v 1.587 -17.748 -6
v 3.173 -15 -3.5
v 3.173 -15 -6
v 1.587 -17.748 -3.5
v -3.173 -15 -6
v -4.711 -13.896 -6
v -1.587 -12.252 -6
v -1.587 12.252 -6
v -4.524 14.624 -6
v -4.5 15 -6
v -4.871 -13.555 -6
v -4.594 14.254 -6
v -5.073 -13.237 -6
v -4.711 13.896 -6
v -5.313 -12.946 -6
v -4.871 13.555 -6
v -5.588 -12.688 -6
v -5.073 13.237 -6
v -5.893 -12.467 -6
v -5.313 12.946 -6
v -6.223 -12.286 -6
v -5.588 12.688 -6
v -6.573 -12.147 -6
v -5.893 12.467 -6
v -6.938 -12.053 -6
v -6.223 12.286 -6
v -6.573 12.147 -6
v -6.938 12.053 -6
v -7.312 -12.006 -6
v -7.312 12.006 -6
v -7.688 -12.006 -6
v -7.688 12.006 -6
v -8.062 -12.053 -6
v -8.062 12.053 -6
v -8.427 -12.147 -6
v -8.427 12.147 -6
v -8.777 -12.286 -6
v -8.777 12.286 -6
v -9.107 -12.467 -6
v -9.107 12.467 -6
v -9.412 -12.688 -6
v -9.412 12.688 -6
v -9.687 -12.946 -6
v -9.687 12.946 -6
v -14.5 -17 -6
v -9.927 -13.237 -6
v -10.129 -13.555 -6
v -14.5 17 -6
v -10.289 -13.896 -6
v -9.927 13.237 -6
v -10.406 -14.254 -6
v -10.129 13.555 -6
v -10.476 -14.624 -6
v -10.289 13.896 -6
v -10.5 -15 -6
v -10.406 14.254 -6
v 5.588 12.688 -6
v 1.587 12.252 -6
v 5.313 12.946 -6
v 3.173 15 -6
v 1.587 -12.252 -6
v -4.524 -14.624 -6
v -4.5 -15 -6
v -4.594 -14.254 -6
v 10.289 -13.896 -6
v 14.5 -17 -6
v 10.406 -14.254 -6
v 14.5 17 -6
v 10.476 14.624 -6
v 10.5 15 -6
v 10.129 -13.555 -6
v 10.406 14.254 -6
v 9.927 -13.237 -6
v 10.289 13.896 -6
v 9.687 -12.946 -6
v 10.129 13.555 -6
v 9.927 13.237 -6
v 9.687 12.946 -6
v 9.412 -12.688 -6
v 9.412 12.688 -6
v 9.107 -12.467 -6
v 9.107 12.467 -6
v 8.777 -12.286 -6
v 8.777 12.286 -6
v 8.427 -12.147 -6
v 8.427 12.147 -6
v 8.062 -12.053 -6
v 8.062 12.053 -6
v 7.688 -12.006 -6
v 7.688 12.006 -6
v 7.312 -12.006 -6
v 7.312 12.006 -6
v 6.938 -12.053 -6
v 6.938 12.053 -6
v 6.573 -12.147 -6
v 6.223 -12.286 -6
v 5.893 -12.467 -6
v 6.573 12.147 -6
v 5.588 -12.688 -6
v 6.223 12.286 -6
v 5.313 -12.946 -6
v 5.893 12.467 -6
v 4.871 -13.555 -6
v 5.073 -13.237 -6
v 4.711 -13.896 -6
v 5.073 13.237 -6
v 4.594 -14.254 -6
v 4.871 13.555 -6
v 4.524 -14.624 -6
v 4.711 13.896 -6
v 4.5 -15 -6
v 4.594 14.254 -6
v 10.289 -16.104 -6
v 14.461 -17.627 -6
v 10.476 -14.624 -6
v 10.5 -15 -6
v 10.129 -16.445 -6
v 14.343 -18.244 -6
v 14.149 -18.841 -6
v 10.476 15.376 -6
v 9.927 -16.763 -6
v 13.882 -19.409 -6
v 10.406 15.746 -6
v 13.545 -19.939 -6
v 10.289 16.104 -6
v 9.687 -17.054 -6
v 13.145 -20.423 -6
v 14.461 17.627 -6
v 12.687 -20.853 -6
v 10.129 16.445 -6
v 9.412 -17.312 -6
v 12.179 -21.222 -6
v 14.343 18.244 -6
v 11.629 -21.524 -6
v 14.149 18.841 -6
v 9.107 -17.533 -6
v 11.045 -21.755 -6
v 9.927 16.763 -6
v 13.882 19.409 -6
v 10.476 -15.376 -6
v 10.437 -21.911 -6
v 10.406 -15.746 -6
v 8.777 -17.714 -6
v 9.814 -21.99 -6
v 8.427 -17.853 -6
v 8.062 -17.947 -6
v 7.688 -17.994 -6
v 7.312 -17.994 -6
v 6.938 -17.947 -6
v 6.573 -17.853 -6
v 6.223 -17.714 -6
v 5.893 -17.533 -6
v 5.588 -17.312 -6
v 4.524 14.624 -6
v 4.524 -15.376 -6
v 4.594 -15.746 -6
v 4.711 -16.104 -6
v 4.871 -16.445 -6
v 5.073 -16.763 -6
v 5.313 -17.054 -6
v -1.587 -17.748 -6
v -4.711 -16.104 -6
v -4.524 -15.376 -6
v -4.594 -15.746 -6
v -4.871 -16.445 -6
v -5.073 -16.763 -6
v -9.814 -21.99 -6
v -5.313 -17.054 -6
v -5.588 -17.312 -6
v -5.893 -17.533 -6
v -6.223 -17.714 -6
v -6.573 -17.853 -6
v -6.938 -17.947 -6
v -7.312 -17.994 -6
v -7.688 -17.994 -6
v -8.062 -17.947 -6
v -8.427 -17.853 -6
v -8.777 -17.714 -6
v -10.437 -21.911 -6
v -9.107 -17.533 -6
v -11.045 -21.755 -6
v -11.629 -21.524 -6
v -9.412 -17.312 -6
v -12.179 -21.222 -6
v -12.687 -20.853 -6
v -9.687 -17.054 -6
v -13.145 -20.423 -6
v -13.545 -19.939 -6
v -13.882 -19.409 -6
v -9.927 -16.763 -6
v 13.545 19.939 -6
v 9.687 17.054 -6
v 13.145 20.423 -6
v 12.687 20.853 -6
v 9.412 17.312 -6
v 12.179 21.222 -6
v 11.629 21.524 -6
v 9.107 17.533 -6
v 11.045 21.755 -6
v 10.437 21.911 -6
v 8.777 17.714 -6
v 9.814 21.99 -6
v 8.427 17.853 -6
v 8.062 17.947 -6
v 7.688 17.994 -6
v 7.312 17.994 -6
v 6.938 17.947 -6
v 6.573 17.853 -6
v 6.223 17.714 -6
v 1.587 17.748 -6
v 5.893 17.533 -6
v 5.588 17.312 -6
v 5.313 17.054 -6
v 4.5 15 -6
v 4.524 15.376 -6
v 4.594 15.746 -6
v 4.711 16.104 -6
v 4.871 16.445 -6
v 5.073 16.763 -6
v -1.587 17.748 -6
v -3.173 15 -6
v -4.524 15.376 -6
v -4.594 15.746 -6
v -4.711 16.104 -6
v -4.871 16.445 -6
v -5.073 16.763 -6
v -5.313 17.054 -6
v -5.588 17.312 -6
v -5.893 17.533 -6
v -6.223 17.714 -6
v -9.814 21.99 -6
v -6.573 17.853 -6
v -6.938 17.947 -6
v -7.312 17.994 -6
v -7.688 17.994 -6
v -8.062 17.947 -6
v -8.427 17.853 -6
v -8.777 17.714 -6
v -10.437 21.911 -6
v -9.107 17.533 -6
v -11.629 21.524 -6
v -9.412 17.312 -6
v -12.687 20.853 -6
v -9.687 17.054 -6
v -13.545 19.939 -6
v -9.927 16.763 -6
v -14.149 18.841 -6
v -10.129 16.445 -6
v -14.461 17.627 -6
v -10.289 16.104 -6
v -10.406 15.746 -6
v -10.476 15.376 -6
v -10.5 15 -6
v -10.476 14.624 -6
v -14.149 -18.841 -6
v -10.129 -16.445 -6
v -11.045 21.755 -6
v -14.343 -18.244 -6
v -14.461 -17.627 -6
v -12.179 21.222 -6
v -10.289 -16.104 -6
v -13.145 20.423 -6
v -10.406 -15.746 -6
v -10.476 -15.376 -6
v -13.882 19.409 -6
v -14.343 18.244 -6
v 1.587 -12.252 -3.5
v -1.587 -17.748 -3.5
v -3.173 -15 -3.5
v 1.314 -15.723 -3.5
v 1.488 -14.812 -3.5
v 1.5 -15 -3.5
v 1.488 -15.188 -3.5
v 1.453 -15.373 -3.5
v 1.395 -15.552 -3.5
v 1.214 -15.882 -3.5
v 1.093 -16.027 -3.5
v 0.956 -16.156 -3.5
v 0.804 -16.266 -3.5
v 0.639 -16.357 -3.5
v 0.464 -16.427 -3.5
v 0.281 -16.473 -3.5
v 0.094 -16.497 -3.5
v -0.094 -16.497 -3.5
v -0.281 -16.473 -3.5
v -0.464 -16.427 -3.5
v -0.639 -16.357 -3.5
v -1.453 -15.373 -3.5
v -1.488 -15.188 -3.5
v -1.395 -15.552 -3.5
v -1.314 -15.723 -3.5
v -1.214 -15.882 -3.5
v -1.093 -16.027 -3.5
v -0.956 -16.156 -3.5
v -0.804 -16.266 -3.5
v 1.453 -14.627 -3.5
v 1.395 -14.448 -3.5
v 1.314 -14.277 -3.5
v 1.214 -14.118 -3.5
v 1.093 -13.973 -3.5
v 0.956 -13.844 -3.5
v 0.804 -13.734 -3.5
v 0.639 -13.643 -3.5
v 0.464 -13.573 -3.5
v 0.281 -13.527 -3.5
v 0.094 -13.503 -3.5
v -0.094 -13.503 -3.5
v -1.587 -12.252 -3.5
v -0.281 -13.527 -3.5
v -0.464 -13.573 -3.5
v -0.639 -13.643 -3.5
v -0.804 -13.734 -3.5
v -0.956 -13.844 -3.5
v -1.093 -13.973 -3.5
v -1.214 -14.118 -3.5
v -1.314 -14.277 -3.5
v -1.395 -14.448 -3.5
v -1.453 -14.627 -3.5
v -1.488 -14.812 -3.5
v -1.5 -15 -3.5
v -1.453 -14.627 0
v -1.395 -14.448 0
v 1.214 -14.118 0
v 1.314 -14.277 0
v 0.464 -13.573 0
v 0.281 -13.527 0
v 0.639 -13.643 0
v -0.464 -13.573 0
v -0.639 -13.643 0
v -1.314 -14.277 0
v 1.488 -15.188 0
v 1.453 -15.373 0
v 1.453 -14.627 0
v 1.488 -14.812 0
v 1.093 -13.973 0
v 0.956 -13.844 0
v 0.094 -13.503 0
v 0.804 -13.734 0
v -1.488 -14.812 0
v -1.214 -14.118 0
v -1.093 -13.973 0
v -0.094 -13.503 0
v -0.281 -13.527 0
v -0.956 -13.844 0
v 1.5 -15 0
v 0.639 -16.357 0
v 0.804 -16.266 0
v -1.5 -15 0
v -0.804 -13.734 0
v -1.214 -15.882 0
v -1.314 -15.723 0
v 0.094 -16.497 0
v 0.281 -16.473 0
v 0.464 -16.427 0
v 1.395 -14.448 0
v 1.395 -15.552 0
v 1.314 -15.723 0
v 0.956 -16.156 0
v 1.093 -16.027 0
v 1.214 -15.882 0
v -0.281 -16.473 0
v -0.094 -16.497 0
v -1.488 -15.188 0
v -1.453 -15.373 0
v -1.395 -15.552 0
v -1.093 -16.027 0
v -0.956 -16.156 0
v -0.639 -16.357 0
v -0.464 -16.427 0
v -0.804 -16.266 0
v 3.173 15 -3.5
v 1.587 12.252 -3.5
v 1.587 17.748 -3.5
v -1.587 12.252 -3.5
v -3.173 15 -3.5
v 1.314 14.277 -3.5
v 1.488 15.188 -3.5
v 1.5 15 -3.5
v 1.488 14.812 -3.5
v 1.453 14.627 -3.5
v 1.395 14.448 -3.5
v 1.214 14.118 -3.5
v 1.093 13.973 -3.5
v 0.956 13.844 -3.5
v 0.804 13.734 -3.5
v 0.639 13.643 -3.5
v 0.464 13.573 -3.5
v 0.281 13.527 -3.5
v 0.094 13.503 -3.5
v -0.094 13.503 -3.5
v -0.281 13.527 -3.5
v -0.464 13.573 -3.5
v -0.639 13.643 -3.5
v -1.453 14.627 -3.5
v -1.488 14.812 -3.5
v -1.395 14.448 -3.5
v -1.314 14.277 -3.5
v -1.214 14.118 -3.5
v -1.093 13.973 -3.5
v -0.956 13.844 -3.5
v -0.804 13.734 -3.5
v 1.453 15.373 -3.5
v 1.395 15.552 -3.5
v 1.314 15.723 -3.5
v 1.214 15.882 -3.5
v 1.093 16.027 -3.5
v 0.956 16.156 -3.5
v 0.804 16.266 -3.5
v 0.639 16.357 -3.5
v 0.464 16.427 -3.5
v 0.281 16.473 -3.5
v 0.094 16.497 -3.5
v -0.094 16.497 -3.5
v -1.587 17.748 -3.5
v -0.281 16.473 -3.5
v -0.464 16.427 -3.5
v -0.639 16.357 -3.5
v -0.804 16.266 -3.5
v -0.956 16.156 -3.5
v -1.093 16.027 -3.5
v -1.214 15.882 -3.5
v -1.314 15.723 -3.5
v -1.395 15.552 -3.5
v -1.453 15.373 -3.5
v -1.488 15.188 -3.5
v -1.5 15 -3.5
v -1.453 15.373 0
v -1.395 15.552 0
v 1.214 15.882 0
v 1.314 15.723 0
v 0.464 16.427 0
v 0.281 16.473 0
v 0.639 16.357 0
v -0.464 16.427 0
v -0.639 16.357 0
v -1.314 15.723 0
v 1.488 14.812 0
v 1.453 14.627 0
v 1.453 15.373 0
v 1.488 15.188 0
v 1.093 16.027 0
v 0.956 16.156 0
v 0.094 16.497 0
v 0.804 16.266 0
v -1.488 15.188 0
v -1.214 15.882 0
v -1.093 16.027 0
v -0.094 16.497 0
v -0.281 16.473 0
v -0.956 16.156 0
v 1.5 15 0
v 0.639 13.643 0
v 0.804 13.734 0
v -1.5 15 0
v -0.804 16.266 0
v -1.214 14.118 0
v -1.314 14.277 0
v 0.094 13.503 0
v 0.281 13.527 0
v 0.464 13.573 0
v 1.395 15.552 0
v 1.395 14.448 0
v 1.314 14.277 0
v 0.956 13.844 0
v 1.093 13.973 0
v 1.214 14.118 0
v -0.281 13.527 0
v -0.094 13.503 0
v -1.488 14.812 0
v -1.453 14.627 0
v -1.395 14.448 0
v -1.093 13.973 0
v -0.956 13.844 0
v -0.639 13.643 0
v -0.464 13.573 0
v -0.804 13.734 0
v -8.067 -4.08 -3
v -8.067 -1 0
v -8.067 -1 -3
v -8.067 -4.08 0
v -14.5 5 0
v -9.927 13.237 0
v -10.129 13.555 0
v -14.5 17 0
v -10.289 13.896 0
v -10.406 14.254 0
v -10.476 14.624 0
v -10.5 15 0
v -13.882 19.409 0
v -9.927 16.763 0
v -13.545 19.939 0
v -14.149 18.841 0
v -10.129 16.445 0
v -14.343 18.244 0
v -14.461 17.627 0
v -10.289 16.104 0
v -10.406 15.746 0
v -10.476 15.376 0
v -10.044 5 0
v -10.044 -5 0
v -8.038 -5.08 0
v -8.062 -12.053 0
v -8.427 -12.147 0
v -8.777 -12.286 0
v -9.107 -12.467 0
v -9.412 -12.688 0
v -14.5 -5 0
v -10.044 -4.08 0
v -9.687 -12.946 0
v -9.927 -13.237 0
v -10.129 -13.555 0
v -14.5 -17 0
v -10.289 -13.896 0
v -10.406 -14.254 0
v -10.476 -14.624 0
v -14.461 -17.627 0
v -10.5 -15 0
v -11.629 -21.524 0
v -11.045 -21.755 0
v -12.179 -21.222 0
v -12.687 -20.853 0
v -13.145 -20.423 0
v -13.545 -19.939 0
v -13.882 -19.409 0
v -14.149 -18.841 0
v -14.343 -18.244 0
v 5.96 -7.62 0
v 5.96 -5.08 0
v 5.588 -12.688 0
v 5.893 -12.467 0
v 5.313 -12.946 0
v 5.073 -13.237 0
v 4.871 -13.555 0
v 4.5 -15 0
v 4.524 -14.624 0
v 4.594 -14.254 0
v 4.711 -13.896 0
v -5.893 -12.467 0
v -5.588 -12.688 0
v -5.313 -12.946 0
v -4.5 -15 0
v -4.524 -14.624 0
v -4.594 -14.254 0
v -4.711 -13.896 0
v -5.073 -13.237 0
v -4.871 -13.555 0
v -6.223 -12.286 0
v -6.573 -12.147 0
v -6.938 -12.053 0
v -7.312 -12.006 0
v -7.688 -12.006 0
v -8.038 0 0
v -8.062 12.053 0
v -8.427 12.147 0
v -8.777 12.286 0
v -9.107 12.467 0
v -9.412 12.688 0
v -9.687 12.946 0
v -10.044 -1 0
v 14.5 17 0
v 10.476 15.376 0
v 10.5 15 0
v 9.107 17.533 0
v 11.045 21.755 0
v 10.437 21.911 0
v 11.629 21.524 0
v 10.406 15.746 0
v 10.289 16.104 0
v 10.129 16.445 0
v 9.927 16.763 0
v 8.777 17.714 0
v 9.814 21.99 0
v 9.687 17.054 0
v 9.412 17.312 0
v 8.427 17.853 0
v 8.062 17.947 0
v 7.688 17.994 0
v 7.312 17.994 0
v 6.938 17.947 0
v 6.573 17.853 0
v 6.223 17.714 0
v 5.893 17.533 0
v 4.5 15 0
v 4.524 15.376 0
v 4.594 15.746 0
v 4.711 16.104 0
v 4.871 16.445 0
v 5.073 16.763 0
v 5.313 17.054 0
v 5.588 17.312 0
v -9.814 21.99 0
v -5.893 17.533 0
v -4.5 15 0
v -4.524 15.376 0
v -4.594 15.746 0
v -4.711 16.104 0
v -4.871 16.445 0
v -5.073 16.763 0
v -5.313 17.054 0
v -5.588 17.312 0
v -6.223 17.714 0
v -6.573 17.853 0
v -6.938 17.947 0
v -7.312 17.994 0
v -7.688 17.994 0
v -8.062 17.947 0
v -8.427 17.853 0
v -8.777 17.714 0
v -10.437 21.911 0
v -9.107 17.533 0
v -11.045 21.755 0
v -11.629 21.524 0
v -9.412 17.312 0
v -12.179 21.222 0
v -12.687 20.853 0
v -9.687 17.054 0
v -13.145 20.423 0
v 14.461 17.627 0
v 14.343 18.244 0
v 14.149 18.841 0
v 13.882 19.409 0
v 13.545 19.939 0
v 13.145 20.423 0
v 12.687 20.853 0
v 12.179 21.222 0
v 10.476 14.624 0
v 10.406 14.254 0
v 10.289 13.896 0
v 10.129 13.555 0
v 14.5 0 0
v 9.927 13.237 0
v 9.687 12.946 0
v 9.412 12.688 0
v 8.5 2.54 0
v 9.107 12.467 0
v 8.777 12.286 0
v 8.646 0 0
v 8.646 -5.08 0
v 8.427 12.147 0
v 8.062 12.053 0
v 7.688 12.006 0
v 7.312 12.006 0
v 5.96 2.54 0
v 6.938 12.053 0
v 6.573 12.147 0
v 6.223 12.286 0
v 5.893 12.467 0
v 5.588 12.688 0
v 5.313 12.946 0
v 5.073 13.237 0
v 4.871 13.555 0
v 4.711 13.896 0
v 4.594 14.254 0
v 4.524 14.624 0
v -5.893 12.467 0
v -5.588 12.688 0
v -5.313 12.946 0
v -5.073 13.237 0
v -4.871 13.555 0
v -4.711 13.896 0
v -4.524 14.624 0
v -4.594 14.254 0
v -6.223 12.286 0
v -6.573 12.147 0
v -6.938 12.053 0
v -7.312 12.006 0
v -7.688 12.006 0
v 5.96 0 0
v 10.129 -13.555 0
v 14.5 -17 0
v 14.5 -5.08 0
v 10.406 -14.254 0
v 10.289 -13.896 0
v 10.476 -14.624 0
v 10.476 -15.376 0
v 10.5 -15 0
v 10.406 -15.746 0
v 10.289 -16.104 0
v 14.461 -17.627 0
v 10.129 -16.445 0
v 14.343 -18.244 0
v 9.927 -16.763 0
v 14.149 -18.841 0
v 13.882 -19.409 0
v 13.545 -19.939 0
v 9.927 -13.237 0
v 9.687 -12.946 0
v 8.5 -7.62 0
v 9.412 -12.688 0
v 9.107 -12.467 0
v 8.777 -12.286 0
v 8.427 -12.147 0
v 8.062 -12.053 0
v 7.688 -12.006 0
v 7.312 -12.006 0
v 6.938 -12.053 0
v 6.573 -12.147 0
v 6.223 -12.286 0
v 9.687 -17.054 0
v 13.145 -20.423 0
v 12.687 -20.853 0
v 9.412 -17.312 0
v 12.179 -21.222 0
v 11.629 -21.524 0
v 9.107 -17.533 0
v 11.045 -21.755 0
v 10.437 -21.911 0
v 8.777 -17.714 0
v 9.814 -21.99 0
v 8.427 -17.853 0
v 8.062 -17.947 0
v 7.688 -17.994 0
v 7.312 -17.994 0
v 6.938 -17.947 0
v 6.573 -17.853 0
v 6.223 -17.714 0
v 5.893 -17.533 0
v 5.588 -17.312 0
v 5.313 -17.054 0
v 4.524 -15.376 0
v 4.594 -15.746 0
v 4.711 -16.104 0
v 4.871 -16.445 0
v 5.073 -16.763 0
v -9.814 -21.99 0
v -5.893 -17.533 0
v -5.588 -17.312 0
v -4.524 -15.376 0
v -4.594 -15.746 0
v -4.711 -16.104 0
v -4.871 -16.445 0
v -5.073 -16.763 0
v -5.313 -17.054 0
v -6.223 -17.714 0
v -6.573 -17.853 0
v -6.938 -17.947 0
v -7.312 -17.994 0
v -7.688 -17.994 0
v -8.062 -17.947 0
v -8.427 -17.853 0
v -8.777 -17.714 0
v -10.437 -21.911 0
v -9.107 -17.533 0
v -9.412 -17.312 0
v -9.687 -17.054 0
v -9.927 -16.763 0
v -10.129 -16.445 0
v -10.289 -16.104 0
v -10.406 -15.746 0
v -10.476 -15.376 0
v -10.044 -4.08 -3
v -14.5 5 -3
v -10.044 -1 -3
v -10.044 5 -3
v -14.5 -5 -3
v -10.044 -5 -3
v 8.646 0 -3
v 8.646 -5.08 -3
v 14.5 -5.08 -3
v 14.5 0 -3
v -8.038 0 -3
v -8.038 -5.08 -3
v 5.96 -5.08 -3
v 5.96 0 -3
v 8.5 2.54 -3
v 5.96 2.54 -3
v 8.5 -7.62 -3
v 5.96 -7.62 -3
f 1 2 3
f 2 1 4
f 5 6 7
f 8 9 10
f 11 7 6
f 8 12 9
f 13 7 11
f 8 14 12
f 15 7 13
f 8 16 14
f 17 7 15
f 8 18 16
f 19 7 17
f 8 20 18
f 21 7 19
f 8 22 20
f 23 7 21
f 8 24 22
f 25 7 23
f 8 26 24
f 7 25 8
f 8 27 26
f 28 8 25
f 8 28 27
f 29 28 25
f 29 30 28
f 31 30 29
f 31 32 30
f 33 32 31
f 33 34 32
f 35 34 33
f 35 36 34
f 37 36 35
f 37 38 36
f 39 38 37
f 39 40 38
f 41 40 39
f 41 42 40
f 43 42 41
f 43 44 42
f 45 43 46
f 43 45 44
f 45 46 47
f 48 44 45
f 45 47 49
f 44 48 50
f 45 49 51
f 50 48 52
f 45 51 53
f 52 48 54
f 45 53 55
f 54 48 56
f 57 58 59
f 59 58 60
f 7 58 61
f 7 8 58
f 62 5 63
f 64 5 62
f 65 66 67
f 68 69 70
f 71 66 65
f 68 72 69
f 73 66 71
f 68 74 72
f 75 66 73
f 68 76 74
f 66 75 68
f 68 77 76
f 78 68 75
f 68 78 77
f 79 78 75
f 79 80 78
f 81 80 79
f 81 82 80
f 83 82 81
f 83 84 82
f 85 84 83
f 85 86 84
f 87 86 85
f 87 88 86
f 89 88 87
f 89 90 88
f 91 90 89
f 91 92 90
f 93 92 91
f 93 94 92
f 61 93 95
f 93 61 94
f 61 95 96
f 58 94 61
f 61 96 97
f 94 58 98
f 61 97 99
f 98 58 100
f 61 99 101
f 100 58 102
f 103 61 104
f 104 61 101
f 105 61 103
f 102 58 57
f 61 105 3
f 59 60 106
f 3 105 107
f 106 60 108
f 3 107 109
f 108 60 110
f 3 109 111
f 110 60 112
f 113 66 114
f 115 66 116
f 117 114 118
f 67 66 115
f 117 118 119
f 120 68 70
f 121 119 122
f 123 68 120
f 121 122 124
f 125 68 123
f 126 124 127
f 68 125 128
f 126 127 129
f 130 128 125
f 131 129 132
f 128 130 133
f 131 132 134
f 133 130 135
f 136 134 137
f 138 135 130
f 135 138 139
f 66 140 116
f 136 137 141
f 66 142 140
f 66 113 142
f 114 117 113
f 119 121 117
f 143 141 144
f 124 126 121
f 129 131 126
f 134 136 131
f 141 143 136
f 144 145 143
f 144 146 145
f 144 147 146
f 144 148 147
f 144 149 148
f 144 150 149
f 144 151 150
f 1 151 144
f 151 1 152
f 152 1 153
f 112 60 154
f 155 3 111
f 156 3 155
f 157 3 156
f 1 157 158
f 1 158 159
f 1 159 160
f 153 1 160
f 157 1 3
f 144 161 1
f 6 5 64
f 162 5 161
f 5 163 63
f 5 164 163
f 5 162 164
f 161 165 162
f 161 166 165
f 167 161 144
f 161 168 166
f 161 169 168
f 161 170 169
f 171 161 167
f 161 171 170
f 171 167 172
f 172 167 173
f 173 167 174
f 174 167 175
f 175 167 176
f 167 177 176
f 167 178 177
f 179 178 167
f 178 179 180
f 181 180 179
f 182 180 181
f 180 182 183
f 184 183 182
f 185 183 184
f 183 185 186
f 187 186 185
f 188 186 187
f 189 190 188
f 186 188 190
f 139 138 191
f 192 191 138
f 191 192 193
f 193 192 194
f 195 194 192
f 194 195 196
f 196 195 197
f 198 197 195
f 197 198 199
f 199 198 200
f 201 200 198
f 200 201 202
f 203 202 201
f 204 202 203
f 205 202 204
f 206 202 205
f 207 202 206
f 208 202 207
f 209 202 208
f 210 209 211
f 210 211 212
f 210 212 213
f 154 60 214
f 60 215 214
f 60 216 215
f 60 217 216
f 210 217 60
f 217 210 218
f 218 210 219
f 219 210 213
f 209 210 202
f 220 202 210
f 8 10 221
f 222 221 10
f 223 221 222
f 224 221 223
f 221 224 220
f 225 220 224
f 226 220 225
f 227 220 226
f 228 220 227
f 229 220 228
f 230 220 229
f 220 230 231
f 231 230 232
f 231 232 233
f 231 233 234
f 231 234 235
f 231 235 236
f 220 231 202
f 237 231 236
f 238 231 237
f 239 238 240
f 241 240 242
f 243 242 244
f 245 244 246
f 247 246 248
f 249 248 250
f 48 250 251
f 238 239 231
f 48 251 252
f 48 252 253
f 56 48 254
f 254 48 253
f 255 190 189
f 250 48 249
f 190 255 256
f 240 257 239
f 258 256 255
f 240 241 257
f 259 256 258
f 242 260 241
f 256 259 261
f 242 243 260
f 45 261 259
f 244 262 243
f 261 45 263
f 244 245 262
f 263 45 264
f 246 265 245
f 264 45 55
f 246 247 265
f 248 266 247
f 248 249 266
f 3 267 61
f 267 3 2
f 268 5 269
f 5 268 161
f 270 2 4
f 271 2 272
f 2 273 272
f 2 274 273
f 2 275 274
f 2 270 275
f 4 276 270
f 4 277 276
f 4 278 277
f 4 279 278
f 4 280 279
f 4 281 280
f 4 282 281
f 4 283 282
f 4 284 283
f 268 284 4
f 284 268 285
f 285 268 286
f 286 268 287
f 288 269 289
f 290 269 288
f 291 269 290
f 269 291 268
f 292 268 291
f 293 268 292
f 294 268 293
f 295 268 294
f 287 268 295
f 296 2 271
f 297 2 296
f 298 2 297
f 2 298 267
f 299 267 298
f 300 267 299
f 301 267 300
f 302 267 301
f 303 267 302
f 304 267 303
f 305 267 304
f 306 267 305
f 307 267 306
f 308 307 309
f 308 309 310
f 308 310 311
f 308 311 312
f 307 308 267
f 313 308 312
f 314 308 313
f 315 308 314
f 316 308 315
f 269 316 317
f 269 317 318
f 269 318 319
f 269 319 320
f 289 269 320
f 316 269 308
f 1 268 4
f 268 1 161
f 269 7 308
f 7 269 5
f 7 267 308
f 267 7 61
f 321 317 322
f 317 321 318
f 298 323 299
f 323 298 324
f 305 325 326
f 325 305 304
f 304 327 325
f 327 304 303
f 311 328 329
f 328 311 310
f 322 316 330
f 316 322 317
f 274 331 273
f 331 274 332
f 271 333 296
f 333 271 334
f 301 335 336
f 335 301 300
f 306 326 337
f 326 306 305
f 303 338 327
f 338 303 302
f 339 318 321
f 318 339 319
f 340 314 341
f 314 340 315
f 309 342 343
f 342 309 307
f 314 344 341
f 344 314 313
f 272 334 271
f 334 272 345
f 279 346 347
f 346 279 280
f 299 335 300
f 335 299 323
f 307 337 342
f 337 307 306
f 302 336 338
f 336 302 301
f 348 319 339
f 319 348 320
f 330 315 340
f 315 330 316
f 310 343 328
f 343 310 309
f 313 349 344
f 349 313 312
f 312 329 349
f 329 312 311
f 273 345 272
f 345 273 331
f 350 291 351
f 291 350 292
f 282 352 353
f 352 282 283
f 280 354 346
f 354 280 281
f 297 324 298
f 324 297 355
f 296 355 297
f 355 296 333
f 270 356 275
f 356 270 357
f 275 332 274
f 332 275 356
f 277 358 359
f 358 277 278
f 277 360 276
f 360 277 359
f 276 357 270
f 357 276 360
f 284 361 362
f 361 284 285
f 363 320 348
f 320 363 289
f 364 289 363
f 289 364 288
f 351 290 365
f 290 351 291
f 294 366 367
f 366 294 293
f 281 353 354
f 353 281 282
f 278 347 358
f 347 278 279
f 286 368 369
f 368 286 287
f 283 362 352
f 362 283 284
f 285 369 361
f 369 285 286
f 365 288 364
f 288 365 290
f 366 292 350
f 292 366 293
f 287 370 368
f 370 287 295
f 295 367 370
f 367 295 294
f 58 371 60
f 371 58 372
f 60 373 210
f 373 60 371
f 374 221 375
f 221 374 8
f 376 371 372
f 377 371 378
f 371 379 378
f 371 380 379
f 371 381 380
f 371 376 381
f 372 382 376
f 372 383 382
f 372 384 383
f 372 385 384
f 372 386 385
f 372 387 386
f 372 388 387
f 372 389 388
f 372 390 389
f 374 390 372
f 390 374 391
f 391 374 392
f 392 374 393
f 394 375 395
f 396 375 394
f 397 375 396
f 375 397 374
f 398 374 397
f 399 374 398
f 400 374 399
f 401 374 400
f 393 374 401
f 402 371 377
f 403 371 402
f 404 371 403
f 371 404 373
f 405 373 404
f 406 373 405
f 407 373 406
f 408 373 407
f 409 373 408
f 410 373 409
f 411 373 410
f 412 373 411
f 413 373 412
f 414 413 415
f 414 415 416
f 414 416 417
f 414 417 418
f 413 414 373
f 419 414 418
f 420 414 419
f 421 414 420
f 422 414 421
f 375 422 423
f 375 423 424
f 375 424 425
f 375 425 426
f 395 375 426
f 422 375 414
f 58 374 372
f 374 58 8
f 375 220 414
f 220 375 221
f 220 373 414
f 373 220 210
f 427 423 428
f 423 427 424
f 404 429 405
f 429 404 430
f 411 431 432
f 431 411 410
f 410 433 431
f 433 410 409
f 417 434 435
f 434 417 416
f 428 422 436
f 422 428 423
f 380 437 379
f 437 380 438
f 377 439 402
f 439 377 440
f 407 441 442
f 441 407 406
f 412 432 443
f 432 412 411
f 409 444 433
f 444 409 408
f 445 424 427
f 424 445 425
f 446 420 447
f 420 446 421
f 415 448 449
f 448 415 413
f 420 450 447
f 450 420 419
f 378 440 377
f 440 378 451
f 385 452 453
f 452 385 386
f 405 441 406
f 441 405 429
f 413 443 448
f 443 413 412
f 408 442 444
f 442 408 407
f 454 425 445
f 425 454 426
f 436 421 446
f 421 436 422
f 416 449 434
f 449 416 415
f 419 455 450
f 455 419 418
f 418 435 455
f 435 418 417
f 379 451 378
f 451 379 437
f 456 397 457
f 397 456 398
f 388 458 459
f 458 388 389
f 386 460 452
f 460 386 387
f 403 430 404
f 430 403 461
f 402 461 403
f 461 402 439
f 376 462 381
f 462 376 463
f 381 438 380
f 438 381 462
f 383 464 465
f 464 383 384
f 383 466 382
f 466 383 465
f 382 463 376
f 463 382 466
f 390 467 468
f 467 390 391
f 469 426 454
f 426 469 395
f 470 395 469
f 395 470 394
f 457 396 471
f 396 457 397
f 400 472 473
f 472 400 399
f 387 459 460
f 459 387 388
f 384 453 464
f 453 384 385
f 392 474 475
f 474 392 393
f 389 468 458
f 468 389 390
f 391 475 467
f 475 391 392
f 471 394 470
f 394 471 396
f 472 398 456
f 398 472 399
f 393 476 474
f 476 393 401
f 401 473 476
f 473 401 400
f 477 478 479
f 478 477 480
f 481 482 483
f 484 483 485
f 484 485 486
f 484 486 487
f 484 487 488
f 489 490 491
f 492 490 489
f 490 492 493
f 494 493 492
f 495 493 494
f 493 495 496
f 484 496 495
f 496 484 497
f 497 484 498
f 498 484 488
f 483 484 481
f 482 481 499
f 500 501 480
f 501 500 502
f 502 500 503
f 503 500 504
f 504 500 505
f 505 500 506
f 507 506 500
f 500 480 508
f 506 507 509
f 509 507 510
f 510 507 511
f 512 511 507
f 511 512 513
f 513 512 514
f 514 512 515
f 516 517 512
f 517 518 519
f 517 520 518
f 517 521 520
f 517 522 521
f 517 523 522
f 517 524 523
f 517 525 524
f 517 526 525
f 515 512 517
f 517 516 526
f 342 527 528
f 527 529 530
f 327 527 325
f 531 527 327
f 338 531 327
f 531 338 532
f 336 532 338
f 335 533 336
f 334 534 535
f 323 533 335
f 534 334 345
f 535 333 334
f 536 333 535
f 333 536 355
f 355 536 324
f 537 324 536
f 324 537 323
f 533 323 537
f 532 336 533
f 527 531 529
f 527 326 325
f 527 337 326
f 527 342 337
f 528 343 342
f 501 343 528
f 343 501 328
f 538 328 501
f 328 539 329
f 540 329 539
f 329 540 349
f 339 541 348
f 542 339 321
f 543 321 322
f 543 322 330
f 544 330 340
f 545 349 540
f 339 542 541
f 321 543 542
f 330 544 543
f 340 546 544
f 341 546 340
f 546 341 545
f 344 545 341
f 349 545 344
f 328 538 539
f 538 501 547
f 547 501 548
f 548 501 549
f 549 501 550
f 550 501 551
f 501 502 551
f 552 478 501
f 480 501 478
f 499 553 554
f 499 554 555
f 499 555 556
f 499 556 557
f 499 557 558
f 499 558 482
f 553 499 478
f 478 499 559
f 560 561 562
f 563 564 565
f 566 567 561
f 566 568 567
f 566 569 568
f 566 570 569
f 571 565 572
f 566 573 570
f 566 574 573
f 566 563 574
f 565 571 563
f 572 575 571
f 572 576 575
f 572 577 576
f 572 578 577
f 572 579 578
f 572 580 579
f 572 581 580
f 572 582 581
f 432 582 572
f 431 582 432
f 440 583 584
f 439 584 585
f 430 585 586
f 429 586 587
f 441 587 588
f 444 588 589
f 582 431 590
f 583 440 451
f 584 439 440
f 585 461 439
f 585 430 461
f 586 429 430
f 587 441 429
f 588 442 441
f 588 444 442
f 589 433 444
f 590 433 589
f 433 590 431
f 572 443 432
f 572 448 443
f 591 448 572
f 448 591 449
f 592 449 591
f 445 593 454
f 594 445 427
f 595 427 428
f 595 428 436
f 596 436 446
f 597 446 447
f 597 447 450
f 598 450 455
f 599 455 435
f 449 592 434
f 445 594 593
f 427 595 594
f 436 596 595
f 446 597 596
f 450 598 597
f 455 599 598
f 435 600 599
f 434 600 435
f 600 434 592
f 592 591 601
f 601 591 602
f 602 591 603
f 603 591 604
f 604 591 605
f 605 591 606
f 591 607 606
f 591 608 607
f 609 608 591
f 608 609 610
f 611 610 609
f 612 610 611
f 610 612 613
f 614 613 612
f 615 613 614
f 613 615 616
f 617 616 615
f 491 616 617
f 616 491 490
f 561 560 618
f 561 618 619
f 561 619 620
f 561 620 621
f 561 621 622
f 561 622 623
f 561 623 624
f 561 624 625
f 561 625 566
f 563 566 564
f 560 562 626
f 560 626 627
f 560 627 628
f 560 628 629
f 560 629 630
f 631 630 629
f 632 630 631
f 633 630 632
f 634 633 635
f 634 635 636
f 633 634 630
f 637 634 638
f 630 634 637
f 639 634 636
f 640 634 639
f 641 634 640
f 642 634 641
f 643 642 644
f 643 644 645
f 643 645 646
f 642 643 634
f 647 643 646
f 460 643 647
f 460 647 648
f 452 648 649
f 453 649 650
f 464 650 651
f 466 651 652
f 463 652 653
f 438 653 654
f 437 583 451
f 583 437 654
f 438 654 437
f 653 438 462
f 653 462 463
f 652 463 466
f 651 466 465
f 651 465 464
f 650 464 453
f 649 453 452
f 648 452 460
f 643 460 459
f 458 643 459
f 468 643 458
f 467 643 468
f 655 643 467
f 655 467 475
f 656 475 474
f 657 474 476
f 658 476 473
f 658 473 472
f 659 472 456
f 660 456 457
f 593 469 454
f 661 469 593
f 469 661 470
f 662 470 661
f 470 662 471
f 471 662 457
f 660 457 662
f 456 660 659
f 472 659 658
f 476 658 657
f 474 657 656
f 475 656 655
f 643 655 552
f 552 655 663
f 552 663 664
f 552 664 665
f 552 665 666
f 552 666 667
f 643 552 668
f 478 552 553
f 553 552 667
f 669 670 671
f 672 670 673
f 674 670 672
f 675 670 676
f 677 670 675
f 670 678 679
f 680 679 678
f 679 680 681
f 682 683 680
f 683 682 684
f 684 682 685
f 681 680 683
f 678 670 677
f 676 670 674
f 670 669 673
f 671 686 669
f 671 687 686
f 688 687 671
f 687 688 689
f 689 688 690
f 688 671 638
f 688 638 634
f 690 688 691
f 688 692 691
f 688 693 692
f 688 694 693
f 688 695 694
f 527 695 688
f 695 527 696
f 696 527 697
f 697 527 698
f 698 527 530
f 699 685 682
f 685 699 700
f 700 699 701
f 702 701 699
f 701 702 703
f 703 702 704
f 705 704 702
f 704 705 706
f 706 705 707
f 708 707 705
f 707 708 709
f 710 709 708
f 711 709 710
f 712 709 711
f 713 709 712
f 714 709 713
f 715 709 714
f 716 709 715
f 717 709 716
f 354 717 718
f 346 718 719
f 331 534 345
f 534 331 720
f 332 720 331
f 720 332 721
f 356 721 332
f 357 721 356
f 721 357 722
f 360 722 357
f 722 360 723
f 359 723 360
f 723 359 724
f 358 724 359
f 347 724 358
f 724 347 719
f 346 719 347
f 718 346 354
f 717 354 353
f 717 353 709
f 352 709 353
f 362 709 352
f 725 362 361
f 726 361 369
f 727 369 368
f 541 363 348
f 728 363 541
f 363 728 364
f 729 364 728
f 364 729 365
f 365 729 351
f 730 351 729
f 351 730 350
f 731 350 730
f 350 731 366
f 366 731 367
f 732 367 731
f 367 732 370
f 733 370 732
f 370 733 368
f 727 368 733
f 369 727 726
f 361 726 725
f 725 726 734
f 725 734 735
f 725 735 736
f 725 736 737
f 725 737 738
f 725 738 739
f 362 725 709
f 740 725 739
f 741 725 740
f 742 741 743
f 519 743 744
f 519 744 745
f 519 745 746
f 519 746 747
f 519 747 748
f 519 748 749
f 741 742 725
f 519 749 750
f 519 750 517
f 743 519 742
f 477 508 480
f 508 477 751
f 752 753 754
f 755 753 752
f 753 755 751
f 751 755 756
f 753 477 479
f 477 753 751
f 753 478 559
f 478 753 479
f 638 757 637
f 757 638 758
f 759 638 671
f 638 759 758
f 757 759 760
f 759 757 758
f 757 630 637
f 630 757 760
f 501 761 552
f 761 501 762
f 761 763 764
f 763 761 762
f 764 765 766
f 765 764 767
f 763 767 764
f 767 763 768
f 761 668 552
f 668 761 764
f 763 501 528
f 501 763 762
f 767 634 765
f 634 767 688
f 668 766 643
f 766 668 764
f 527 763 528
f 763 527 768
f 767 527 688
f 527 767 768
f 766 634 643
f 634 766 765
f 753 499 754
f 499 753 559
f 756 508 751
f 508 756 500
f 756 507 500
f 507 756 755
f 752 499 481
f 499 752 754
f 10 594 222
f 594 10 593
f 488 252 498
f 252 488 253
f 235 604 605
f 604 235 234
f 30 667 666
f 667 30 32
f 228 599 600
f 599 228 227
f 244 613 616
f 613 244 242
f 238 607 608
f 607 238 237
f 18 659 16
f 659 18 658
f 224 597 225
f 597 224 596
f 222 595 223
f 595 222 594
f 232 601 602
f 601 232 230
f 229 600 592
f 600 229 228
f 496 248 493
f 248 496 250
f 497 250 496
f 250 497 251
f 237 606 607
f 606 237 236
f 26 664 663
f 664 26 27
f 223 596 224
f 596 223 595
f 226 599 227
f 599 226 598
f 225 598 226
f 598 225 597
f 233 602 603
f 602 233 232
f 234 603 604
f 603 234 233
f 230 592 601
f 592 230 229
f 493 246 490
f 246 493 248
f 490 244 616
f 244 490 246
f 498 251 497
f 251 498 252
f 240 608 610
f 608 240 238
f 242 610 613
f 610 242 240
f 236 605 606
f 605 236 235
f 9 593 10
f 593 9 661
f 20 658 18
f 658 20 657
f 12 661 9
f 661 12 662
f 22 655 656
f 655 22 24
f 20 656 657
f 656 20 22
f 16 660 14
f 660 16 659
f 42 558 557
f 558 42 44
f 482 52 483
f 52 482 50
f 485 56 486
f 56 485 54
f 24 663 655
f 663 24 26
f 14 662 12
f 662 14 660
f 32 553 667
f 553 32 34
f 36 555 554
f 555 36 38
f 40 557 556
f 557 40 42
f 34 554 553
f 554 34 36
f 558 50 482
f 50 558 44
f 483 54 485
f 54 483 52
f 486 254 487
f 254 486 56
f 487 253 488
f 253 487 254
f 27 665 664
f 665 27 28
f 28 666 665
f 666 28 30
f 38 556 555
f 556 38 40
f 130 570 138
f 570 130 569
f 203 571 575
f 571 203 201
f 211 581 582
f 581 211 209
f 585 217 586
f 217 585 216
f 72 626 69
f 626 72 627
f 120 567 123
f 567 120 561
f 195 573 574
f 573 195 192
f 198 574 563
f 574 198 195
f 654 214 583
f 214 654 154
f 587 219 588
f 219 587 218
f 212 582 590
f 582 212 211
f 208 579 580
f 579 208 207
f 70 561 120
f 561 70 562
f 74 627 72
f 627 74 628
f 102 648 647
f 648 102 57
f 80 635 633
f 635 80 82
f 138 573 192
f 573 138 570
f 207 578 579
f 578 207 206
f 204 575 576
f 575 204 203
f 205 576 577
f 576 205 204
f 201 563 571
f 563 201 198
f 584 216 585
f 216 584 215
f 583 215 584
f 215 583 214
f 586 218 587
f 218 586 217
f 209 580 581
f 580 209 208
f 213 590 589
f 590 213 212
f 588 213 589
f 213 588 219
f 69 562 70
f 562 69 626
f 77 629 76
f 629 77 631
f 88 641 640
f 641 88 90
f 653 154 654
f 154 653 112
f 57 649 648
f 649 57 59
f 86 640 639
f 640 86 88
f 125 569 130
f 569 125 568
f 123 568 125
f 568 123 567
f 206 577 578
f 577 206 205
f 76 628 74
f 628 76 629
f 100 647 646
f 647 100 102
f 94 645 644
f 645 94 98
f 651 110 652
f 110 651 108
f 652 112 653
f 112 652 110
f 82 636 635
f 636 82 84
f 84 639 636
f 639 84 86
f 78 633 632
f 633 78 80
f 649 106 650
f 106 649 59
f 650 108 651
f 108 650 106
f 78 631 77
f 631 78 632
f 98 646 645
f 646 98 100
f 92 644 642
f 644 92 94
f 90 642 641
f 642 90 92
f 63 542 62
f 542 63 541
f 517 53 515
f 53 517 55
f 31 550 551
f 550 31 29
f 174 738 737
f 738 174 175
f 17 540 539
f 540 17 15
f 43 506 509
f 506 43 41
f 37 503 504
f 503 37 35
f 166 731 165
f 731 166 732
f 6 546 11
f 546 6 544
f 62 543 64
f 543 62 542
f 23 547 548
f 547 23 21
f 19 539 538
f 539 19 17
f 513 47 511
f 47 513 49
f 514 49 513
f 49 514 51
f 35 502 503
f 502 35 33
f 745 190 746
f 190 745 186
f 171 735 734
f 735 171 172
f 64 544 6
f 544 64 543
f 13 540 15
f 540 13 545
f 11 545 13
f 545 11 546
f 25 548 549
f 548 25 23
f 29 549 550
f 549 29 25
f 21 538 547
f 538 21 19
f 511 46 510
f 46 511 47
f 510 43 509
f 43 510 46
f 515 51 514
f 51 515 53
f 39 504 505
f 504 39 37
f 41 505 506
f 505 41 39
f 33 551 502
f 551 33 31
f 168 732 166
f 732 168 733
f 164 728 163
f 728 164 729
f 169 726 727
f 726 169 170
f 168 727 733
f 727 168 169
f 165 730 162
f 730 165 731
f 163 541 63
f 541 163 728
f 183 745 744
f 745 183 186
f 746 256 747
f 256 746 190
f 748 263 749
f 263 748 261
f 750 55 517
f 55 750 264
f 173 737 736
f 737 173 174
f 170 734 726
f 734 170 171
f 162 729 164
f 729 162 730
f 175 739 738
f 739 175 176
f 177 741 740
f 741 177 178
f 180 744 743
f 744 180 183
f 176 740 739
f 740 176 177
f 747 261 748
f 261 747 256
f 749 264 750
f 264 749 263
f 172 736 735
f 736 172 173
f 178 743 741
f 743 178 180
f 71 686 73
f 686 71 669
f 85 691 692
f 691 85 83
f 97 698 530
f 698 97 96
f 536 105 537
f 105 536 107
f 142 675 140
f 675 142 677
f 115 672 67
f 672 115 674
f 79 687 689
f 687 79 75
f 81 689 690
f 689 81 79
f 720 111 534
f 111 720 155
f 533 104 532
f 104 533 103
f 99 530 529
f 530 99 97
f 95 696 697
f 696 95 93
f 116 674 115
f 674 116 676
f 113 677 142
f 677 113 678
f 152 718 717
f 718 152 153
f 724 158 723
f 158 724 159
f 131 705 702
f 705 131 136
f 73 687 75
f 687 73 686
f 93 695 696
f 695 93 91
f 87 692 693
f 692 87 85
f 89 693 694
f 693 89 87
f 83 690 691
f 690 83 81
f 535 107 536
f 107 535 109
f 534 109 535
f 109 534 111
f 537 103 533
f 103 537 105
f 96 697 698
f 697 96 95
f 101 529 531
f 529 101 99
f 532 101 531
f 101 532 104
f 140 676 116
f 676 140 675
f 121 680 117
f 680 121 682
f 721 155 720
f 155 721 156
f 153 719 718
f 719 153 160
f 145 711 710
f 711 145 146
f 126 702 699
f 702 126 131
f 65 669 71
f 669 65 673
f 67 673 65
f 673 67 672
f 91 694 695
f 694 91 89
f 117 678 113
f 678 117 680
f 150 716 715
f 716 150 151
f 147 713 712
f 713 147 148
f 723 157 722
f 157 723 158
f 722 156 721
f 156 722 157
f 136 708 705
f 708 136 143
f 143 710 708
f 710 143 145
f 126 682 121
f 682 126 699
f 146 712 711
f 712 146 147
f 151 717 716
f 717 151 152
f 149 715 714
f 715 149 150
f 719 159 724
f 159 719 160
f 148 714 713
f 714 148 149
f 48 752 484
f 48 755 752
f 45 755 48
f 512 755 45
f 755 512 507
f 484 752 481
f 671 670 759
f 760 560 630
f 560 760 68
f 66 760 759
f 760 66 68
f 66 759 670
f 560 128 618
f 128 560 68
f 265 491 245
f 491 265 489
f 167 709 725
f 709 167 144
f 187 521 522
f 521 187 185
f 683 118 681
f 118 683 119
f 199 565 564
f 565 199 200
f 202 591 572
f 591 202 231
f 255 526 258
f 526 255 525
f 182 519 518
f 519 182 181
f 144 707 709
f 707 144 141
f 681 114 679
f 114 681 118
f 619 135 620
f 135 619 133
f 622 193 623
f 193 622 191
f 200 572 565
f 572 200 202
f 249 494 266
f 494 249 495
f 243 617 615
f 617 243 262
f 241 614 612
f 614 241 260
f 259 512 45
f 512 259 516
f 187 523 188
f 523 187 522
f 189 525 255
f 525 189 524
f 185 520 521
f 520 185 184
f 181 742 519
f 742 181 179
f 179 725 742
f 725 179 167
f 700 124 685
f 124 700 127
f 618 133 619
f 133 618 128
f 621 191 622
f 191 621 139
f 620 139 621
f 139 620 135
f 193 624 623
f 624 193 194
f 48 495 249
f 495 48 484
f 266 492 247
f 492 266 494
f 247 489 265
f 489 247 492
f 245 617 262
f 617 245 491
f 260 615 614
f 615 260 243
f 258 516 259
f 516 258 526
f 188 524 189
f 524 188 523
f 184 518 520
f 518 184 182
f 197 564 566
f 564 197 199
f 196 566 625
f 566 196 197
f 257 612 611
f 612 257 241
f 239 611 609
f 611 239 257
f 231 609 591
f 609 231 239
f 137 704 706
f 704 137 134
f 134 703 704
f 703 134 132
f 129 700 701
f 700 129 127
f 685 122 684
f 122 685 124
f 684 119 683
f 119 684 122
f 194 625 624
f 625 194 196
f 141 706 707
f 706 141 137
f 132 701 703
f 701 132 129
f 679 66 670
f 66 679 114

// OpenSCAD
$fn = 50;


difference() {
	union() {
		translate(v = [0, 0, -6]) {
			hull() {
				translate(v = [-9.5000000000, 17.0000000000, 0]) {
					cylinder(h = 6, r = 5);
				}
				translate(v = [9.5000000000, 17.0000000000, 0]) {
					cylinder(h = 6, r = 5);
				}
				translate(v = [-9.5000000000, -17.0000000000, 0]) {
					cylinder(h = 6, r = 5);
				}
				translate(v = [9.5000000000, -17.0000000000, 0]) {
					cylinder(h = 6, r = 5);
				}
			}
		}
	}
	union() {
		translate(v = [0, -15, -6]) {
			rotate(a = [0, 0, 0]) {
				difference() {
					union() {
						linear_extrude(height = 2.5000000000) {
							polygon(points = [[3.1735000000, 0.0000000000], [1.5867500000, 2.7483316189], [-1.5867500000, 2.7483316189], [-3.1735000000, 0.0000000000], [-1.5867500000, -2.7483316189], [1.5867500000, -2.7483316189]]);
						}
						translate(v = [0, 0, -50.0000000000]) {
							cylinder(h = 100, r = 1.5000000000);
						}
						translate(v = [0, 0, -50.0000000000]) {
							cylinder(h = 100, r = 1.5000000000);
						}
						translate(v = [0, 0, -50.0000000000]) {
							cylinder(h = 100, r = 1.5000000000);
						}
					}
					union();
				}
			}
		}
		translate(v = [0, 15, -6]) {
			rotate(a = [0, 0, 0]) {
				difference() {
					union() {
						linear_extrude(height = 2.5000000000) {
							polygon(points = [[3.1735000000, 0.0000000000], [1.5867500000, 2.7483316189], [-1.5867500000, 2.7483316189], [-3.1735000000, 0.0000000000], [-1.5867500000, -2.7483316189], [1.5867500000, -2.7483316189]]);
						}
						translate(v = [0, 0, -50.0000000000]) {
							cylinder(h = 100, r = 1.5000000000);
						}
						translate(v = [0, 0, -50.0000000000]) {
							cylinder(h = 100, r = 1.5000000000);
						}
						translate(v = [0, 0, -50.0000000000]) {
							cylinder(h = 100, r = 1.5000000000);
						}
					}
					union();
				}
			}
		}
		translate(v = [15.0000000000, 0, -3]) {
			rotate(a = [0, 0, 180]) {
				difference() {
					union() {
						#translate(v = [23.0670000000, 1.0000000000, 0]) {
							cube(size = [5, 3.0800000000, 3]);
						}
						#translate(v = [0.3540000000, 0.0000000000, 0]) {
							cube(size = [6, 5.0800000000, 3]);
						}
						#translate(v = [9.0380000000, 0.0000000000, 0]) {
							cube(size = [14, 5.0800000000, 3]);
						}
						#translate(v = [6.5000000000, -2.5400000000, 0]) {
							cube(size = [2.5400000000, 10.1600000000, 3]);
						}
						#translate(v = [25.0440000000, -5.0000000000, 0]) {
							cube(size = [7, 10, 3]);
						}
					}
					union();
				}
			}
		}
		translate(v = [-7.5000000000, 15.0000000000, -50.0000000000]) {
			cylinder(h = 100, r = 3.0000000000);
		}
		translate(v = [7.5000000000, 15.0000000000, -50.0000000000]) {
			cylinder(h = 100, r = 3.0000000000);
		}
		translate(v = [-7.5000000000, -15.0000000000, -50.0000000000]) {
			cylinder(h = 100, r = 3.0000000000);
		}
		translate(v = [7.5000000000, -15.0000000000, -50.0000000000]) {
			cylinder(h = 100, r = 3.0000000000);
		}
	}
}
